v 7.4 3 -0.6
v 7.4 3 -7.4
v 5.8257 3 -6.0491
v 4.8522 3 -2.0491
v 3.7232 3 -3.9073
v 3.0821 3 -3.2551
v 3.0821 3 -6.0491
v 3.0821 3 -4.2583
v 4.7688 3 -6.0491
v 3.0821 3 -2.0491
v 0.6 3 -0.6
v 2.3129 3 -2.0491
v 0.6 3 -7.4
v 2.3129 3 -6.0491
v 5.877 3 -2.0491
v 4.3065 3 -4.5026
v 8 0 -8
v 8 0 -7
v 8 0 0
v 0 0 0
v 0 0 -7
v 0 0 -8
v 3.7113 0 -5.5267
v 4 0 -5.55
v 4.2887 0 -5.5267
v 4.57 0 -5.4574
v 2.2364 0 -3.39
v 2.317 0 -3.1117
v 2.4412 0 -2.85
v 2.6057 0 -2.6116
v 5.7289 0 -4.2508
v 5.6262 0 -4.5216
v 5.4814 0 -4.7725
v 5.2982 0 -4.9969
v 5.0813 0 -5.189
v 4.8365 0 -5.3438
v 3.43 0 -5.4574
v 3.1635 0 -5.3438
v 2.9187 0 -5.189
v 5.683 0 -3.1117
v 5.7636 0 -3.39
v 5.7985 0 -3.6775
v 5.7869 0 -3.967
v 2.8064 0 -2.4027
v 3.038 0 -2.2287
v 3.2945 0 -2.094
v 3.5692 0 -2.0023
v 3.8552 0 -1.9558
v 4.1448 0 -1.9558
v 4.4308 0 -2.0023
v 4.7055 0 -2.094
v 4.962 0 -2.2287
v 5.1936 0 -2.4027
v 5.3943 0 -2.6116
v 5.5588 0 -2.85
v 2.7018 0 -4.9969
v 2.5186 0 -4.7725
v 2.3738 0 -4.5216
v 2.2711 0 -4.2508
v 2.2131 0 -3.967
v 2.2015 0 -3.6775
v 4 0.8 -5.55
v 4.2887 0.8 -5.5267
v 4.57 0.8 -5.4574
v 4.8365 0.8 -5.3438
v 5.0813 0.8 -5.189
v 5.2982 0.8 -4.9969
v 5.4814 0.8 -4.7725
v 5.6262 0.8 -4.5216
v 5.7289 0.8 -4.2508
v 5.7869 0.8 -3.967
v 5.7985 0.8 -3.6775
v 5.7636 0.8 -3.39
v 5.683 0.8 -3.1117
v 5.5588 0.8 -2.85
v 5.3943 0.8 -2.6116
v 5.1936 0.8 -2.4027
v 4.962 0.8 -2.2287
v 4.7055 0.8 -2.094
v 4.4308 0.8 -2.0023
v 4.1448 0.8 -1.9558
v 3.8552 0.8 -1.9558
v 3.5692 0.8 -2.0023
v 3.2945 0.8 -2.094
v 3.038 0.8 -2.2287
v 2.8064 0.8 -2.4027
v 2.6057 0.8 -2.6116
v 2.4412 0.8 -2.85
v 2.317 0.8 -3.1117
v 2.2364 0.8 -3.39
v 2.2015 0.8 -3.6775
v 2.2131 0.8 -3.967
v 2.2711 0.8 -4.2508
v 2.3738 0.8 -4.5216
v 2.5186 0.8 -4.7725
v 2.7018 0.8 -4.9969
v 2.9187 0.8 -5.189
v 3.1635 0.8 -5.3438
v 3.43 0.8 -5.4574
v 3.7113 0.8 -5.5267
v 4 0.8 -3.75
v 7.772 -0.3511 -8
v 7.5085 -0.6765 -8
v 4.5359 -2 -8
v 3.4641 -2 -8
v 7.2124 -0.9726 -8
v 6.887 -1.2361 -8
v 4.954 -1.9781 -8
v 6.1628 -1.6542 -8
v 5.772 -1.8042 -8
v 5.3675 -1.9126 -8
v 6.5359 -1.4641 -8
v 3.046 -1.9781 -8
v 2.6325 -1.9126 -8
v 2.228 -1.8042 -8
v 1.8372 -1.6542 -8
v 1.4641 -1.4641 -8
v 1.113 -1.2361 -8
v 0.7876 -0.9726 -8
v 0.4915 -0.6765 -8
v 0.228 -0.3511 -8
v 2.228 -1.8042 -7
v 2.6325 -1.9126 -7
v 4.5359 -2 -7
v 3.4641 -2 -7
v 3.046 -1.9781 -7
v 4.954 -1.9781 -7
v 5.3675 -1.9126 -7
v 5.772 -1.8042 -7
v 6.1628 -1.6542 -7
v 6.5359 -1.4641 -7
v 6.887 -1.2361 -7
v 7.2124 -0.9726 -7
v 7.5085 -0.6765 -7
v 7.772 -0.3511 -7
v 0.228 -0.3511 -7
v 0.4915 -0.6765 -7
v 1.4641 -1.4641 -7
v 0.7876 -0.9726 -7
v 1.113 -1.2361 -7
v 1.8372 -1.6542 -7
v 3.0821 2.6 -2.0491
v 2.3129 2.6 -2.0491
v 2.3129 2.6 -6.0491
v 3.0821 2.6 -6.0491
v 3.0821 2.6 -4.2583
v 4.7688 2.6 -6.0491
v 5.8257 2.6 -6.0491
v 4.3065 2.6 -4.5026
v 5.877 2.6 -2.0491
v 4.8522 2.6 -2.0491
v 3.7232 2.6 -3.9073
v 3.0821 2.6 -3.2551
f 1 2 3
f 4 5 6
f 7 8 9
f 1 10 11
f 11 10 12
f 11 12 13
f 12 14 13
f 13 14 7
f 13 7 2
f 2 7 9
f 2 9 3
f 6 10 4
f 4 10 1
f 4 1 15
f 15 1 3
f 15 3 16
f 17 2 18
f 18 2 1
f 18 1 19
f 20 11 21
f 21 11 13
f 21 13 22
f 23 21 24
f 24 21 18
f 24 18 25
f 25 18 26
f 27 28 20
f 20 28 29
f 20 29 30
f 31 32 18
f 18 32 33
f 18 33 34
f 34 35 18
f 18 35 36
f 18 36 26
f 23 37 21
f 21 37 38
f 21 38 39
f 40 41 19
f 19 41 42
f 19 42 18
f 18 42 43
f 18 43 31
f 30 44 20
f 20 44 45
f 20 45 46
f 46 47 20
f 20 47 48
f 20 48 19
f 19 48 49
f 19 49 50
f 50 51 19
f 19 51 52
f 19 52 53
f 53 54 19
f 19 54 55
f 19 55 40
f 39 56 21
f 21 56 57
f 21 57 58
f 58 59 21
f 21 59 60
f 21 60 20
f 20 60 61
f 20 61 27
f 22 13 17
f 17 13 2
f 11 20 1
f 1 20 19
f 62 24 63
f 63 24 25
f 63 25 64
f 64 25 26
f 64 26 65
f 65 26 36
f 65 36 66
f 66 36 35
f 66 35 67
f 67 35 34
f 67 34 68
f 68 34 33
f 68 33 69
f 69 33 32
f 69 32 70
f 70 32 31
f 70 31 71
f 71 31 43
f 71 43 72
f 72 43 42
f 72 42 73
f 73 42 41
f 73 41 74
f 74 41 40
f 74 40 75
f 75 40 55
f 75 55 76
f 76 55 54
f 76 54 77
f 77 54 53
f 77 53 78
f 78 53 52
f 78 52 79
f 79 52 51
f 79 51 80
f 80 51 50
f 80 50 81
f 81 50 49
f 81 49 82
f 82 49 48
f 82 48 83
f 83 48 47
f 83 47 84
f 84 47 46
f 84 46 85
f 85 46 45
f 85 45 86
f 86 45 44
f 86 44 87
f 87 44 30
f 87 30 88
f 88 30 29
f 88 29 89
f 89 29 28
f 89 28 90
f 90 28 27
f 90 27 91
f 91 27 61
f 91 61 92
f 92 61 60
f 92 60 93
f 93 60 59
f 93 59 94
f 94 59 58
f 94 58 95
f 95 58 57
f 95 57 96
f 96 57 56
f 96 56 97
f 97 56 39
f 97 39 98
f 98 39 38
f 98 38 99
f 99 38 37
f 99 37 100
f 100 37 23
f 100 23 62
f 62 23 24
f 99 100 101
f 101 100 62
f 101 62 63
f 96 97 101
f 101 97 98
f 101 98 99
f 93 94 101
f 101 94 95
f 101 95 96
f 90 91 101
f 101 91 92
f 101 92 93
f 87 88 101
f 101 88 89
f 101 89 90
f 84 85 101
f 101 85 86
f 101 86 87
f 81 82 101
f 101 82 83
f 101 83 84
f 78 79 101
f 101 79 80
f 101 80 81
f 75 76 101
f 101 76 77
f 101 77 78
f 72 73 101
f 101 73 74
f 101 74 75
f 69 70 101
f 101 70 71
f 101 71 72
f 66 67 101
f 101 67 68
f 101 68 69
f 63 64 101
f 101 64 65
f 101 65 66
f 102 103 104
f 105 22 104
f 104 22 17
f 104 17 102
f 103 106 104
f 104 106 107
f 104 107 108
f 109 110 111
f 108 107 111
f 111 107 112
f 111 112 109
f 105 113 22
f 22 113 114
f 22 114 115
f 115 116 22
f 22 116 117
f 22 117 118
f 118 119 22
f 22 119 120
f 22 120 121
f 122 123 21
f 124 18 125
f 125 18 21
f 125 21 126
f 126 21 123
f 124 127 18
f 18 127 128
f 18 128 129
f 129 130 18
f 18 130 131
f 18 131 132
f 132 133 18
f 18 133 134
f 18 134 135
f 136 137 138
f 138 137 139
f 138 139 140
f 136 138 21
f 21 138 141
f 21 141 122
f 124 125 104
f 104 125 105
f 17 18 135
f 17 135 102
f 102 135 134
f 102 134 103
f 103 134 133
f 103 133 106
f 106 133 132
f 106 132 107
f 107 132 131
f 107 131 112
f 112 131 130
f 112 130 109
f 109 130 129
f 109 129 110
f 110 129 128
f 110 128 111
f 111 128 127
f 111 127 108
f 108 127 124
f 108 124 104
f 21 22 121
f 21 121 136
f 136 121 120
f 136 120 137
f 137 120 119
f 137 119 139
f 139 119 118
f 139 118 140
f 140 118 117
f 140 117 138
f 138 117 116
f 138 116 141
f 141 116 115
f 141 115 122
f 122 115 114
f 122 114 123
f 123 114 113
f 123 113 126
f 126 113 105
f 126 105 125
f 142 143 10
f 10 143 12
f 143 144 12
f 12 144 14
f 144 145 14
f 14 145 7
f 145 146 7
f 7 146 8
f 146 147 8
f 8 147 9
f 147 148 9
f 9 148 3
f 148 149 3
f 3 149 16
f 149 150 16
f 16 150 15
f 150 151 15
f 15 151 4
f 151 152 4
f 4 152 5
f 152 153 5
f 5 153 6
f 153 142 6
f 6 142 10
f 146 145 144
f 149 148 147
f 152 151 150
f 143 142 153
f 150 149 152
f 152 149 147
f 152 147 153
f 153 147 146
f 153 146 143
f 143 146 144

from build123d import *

# Parameters (mm, degrees)
SKETCH1_W               = 8
SKETCH1_H               = 8
BOSS_EXTRUDE1_DEPTH     = 3
CUT_EXTRUDE1_DEPTH      = 12.704699911
CUT_EXTRUDE1_DEPTH_BACK = 12.704699911
CUT_EXTRUDE2_DEPTH      = 11
SKETCH4_R               = 1.8
CUT_EXTRUDE3_DEPTH      = 0.8
SKETCH5_W               = 8
SKETCH5_H               = 1
BOSS_EXTRUDE2_DEPTH     = 2
FILLET1_R               = 4
CUT_EXTRUDE4_DEPTH      = 0.4


with BuildPart() as part:
    # Sketch1 → Boss-Extrude1 (new body)
    with BuildSketch(Plane(origin=(0, 0, 0), x_dir=(1, 0, 0), z_dir=(0, 1, 0))):
        with Locations((4, 4)):
            Rectangle(SKETCH1_W, SKETCH1_H)
    extrude(amount=BOSS_EXTRUDE1_DEPTH)

    # Sketch2 → Cut-Extrude1 (cut, two sides: drawn at the far end of the back side and taken through both)
    with BuildSketch(Plane.XY.offset(-CUT_EXTRUDE1_DEPTH_BACK)):
        Polygon((0, 0), (0.6, 3), (0, 3), align=None)
        Polygon((8, 0), (7.4, 3), (8, 3), align=None)
    extrude(amount=CUT_EXTRUDE1_DEPTH + CUT_EXTRUDE1_DEPTH_BACK, mode=Mode.SUBTRACT)

    # Sketch3 → Cut-Extrude2 (cut)
    with BuildSketch(Plane(origin=(0, 0, 0), x_dir=(0, 0, -1), z_dir=(1, 0, 0))):
        Polygon((0, 0), (0.6, 3), (0, 3), align=None)
        Polygon((8, 3), (7.4, 3), (8, 0), align=None)
    extrude(amount=CUT_EXTRUDE2_DEPTH, mode=Mode.SUBTRACT)

    # Sketch4 → Cut-Extrude3 (cut)
    with BuildSketch(Plane.XZ):
        with Locations(Location((4, -3.75, 0), (0, 0, 270))):
            Circle(SKETCH4_R)
    extrude(amount=-CUT_EXTRUDE3_DEPTH, mode=Mode.SUBTRACT)

    # Sketch5 → Boss-Extrude2 (add)
    with BuildSketch(Plane.XZ):
        with Locations((4, -7.5)):
            Rectangle(SKETCH5_W, SKETCH5_H)
    extrude(amount=BOSS_EXTRUDE2_DEPTH)

    # Fillet1
    # the kernel refuses this fillet: 4 mm, written as the material it takes off along each edge
    with BuildSketch(Plane(origin=(8, -2, -16.660254038), x_dir=(0, 1, 0), z_dir=(0, 0, 1)), Plane(origin=(0, -2, 1.660254038), x_dir=(0, 1, 0), z_dir=(0, 0, -1))) as fillet1_piece_1:
        with BuildLine():
            CenterArc((4, 3.464101615), FILLET1_R, 180, 60)
            Line((0, 3.464101615), (-0.08, 3.464101615))
            Line((-0.08, 3.464101615), (-0.08, 0))
            Line((-0.08, 0), (0, -0.08))
            ThreePointArc((0, -0.08), (1, -0.08), (1.96, -0.069282032))
            Line((1.96, -0.069282032), (2, 0))
        make_face()
    extrude(amount=18.320508076, mode=Mode.SUBTRACT)

    # Sketch6 → Cut-Extrude4 (cut)
    with BuildSketch(Plane(origin=(0, 3, 0), x_dir=(1, 0, 0), z_dir=(0, 1, 0))):
        Polygon((2.312898911, 2.049121591), (2.312898911, 6.049121591), (3.08212968, 6.049121591), (3.08212968, 4.258256206), (4.768828398, 6.049121591), (5.825719424, 6.049121591), (4.306488654, 4.502647232), (5.877001475, 2.049121591), (4.852161731, 2.049121591), (3.723155321, 3.907294667), (3.08212968, 3.255051078), (3.08212968, 2.049121591), align=None)
    extrude(amount=-CUT_EXTRUDE4_DEPTH, mode=Mode.SUBTRACT)


solid = part.part
